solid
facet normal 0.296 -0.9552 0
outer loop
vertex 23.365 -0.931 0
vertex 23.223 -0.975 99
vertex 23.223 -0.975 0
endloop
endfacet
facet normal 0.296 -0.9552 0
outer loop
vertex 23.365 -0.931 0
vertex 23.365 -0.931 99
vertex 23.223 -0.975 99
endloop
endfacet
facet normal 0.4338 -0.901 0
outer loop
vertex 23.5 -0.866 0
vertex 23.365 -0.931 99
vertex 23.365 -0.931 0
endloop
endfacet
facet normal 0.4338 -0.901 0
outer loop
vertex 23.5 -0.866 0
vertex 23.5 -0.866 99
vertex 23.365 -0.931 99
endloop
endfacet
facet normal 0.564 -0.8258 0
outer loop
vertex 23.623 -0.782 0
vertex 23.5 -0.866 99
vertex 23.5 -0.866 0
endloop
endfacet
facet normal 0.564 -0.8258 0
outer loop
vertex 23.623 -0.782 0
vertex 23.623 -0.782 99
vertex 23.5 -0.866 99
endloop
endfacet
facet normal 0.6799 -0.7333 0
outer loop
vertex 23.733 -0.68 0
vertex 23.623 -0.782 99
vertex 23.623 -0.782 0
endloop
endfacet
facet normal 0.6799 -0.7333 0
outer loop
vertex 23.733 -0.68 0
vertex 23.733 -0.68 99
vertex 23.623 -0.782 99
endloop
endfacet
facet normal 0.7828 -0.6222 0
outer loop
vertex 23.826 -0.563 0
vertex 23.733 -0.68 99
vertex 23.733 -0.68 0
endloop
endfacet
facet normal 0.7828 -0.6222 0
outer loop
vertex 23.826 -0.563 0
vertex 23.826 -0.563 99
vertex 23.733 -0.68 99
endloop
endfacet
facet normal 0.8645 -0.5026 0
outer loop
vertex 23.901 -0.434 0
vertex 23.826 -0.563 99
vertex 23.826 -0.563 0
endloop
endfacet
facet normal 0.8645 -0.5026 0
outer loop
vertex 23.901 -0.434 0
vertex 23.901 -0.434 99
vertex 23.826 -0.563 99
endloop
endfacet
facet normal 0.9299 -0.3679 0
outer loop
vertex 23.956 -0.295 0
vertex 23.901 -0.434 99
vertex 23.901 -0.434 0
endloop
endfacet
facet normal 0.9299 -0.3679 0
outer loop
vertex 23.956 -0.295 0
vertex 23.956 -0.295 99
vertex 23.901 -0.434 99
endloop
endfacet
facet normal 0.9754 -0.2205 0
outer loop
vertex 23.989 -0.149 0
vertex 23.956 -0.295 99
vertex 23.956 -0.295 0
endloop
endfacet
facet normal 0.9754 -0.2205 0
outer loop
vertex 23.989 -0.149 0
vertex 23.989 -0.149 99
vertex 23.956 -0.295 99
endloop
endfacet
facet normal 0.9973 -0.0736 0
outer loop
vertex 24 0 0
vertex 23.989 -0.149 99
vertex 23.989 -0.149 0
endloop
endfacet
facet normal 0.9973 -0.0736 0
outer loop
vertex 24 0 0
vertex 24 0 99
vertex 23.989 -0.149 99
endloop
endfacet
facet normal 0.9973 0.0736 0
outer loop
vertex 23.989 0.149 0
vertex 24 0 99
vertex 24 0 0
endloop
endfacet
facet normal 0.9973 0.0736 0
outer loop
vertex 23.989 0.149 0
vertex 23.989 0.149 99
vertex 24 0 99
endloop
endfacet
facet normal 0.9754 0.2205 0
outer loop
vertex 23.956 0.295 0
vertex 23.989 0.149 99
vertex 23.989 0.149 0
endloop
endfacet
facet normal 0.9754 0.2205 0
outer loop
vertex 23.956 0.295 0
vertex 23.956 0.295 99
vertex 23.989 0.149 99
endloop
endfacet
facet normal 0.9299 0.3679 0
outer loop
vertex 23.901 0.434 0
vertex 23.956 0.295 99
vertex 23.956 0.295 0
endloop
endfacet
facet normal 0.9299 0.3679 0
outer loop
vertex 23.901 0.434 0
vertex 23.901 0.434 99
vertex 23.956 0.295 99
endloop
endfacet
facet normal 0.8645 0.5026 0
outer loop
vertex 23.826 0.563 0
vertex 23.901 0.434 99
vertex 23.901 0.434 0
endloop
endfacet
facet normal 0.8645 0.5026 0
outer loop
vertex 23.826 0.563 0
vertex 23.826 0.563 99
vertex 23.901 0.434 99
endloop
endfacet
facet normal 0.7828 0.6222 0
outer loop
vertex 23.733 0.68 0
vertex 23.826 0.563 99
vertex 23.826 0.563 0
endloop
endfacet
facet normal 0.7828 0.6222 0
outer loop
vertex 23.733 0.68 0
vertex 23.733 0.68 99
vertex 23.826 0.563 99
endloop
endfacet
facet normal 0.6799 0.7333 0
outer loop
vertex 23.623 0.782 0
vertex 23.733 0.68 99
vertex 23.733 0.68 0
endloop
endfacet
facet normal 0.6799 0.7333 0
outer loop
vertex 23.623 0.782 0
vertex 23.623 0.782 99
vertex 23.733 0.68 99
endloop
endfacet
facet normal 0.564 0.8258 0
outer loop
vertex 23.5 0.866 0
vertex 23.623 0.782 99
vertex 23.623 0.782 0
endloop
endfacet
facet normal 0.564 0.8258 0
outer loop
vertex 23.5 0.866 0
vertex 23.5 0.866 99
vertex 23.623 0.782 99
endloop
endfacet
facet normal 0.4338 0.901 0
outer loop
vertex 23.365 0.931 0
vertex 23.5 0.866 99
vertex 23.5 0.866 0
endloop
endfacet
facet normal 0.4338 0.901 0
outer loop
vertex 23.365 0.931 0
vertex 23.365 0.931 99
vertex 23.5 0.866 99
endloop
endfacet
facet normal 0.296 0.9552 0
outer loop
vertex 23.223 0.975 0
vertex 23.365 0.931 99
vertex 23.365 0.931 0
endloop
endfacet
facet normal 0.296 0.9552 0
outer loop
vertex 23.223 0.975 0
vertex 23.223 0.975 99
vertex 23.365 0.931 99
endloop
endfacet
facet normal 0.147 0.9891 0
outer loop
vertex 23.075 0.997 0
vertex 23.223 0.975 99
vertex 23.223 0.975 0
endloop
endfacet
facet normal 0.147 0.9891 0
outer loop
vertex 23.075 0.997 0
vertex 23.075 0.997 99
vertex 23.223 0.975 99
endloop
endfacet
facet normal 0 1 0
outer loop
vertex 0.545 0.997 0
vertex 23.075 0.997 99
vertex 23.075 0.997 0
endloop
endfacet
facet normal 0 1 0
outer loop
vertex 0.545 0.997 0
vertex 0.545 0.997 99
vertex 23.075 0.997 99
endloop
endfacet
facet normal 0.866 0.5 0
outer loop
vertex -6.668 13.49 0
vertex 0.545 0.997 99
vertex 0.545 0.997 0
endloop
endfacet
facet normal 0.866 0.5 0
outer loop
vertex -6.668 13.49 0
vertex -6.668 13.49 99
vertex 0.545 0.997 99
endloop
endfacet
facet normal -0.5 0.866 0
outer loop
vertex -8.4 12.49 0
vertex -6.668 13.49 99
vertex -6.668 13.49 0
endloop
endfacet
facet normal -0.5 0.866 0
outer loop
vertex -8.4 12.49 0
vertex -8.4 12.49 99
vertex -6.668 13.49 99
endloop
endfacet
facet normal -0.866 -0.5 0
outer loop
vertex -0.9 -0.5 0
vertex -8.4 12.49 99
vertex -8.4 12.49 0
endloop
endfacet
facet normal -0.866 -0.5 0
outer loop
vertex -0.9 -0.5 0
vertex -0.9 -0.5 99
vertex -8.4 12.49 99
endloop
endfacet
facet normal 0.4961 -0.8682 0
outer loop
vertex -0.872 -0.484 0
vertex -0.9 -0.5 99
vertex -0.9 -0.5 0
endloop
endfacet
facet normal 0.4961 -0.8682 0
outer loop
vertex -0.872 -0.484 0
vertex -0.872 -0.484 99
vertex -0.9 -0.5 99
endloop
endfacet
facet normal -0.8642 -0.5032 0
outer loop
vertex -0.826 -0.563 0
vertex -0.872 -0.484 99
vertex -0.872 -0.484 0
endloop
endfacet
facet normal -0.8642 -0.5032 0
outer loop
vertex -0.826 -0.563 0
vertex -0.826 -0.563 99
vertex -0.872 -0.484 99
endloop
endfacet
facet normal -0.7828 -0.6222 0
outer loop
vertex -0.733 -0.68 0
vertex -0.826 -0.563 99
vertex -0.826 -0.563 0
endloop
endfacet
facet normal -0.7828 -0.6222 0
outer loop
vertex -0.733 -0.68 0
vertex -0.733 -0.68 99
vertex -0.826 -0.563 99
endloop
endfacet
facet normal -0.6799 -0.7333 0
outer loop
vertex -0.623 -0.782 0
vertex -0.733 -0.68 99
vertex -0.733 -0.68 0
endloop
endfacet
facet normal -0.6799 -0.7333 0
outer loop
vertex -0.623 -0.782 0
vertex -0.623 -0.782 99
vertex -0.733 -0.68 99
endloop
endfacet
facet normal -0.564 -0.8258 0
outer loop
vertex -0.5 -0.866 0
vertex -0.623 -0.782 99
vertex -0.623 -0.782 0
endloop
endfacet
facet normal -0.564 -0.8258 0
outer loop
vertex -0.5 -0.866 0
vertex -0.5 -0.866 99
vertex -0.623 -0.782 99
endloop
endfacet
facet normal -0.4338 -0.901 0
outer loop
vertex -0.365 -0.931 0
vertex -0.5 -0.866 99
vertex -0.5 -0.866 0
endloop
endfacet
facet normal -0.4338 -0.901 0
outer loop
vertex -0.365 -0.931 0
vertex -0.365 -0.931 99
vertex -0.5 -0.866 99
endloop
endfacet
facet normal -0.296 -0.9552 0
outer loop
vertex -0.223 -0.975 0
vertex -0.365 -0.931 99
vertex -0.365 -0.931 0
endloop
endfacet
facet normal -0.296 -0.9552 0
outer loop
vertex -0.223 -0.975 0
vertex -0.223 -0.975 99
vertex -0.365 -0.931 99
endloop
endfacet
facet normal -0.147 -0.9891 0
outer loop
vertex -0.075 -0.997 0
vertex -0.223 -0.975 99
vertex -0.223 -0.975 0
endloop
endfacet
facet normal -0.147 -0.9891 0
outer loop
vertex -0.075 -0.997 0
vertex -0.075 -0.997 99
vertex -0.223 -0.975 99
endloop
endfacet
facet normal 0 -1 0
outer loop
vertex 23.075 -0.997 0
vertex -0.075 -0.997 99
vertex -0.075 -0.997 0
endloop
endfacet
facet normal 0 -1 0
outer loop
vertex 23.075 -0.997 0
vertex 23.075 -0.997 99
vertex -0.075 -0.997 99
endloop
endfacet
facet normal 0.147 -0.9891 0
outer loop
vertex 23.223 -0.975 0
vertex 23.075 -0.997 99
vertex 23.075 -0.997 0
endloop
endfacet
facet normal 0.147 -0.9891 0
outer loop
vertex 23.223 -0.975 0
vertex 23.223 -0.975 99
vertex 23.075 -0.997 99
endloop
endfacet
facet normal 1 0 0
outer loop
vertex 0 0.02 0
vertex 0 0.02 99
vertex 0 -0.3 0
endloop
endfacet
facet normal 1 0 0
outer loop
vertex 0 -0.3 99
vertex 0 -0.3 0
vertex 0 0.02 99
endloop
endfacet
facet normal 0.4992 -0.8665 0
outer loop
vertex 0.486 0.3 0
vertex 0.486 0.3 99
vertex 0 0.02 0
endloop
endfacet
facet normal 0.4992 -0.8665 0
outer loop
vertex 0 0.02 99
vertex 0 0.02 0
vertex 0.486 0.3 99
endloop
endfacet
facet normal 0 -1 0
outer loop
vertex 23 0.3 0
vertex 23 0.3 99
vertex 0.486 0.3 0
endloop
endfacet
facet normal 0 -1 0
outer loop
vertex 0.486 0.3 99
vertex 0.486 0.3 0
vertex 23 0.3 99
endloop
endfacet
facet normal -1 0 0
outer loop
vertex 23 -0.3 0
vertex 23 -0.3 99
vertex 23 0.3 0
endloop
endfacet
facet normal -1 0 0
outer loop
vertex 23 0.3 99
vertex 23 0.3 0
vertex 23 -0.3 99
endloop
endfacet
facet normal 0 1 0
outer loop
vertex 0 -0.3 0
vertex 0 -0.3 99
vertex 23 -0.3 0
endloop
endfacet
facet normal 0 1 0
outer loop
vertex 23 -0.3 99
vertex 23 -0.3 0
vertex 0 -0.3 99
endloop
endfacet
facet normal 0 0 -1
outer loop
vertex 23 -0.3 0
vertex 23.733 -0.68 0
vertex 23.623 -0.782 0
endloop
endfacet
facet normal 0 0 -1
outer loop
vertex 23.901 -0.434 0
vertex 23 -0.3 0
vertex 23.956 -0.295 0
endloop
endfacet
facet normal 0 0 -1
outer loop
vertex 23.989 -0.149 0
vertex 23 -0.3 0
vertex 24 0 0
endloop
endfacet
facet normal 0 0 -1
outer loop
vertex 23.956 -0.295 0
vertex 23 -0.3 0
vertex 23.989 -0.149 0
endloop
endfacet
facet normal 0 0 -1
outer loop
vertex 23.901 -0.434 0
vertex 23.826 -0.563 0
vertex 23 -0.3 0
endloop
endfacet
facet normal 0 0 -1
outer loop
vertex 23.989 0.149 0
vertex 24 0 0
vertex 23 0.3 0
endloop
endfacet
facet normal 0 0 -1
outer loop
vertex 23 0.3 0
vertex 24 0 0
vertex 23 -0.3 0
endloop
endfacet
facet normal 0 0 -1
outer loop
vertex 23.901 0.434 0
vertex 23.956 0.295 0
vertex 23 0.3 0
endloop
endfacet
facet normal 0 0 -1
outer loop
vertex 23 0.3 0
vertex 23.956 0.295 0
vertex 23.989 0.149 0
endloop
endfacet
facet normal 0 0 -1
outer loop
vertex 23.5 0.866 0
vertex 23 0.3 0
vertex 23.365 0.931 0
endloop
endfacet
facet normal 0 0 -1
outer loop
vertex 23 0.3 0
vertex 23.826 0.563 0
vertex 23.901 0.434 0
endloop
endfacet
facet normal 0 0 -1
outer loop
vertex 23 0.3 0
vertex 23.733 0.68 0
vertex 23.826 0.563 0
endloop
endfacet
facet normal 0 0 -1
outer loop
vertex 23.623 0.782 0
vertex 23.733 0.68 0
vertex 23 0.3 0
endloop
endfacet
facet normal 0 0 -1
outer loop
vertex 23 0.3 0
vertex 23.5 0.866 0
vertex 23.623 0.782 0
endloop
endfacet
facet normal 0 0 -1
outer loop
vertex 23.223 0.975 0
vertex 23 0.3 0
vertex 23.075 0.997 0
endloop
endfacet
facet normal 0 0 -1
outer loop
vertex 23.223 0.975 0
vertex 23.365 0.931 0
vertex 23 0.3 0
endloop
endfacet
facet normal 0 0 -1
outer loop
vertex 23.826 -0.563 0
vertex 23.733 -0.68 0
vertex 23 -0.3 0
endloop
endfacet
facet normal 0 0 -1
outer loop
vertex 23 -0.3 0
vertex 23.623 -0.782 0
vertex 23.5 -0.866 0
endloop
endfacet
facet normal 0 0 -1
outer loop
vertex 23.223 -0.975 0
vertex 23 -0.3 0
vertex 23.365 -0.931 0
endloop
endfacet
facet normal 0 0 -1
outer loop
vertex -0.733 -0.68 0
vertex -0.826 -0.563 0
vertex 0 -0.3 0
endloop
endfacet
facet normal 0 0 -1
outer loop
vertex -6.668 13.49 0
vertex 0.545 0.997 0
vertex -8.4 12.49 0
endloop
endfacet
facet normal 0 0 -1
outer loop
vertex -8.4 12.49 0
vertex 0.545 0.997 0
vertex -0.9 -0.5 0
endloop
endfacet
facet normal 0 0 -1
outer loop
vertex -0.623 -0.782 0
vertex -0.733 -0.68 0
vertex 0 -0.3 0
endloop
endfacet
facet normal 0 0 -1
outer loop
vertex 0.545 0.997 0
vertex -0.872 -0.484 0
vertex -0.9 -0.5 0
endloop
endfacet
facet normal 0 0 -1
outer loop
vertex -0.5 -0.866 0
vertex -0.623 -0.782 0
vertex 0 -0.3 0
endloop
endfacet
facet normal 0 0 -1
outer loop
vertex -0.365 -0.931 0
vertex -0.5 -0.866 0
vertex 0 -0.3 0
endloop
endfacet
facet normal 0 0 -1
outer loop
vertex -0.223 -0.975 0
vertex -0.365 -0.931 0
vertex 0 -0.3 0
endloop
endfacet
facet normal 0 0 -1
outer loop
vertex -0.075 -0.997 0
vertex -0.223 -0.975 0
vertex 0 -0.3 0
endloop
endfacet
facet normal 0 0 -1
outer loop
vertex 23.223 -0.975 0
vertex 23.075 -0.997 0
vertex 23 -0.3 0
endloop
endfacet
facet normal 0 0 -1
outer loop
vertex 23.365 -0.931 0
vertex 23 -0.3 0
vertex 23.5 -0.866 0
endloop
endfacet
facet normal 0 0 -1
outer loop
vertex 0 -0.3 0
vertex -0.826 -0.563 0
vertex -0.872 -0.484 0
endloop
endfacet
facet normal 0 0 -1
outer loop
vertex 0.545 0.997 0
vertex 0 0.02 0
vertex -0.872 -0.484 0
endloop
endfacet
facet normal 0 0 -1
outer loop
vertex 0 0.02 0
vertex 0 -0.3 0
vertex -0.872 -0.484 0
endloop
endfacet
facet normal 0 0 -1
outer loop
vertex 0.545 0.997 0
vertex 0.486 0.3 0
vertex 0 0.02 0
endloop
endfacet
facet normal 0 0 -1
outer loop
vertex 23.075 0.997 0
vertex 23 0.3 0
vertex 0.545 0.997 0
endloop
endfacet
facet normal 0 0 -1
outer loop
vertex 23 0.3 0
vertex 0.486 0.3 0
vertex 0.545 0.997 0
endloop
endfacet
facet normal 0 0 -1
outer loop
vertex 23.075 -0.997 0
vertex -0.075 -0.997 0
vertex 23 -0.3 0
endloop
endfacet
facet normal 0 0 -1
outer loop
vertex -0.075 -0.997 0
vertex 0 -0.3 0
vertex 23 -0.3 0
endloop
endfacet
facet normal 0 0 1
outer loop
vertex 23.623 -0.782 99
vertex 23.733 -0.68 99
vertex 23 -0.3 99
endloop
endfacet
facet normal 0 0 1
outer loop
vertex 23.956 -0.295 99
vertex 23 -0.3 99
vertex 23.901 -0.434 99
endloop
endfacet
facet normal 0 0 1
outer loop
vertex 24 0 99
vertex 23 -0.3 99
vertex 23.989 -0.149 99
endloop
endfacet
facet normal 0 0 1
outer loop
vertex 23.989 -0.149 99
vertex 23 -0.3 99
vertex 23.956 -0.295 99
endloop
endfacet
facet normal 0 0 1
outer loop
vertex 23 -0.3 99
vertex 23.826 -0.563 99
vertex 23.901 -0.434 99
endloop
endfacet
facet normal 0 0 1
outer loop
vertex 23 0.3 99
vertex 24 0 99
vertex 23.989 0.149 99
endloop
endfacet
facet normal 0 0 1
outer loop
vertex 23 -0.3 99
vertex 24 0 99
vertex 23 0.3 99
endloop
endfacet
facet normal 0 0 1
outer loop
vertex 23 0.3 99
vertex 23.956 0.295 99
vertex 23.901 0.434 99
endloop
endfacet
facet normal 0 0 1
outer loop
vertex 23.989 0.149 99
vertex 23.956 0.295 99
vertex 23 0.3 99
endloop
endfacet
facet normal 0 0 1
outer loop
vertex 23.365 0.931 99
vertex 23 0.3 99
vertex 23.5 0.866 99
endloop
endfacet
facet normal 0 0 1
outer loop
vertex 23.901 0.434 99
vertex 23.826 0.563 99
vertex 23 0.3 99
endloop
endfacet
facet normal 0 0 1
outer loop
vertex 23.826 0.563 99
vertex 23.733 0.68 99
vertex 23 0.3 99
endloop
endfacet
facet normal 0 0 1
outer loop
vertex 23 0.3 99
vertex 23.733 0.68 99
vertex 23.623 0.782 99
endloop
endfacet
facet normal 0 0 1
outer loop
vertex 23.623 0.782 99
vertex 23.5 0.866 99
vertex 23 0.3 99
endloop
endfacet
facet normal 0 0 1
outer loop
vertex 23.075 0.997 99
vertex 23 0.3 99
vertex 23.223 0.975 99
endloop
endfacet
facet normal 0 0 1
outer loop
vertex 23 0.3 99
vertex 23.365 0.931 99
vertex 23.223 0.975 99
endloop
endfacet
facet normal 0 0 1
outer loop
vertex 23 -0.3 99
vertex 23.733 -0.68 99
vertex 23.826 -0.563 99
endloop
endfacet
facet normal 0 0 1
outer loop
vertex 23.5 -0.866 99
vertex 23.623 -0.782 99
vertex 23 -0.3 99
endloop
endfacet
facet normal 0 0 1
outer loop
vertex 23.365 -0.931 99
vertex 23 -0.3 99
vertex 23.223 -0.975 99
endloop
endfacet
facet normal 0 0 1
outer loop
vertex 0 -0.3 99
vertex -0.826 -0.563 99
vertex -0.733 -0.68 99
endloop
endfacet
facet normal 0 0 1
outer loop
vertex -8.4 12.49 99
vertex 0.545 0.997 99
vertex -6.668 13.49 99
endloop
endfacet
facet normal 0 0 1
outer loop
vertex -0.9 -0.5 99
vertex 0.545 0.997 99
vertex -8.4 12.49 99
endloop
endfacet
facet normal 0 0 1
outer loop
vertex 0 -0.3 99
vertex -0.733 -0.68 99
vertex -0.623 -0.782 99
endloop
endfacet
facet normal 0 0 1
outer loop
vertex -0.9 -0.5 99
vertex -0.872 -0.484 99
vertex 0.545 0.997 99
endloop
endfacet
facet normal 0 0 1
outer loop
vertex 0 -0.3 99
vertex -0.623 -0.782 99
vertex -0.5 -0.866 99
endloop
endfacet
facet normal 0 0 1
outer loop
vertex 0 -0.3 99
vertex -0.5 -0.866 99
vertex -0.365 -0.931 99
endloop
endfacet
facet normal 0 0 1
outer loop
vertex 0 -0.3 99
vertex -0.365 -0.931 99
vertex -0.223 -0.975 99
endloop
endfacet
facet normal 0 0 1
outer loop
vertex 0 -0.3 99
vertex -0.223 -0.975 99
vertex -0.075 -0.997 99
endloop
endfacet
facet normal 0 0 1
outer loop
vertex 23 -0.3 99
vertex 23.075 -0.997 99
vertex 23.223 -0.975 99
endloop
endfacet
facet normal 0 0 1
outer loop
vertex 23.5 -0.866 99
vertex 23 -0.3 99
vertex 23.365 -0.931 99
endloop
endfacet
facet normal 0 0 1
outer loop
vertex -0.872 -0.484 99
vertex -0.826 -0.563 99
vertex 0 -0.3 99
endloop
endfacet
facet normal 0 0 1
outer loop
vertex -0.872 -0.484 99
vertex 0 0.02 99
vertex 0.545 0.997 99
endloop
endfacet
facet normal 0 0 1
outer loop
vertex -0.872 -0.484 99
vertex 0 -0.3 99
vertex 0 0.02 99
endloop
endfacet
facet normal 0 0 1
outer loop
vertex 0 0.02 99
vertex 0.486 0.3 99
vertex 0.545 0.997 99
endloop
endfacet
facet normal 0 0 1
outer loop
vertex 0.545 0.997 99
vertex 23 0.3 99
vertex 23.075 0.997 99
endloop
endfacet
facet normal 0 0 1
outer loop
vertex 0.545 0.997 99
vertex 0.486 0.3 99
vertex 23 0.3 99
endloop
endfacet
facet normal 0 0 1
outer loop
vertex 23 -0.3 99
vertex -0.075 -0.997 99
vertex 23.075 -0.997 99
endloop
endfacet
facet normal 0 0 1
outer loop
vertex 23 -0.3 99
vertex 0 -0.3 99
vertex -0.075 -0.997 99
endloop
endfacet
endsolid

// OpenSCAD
$fa = 1;
$fs = 0.15;


l = 99;
w = 23;

linear_extrude(l) {
  translate([-0.9, -0.5, 0])
  rotate([0, 0, 30])
  square([2, 15]);
  difference() {
    hull() {
      circle(d = 2);
      translate([w, 0, 0])
        circle(d = 2);
    }
    translate([w/2, 0, 0])
      square([w, 0.6], center = true);
  }
}
